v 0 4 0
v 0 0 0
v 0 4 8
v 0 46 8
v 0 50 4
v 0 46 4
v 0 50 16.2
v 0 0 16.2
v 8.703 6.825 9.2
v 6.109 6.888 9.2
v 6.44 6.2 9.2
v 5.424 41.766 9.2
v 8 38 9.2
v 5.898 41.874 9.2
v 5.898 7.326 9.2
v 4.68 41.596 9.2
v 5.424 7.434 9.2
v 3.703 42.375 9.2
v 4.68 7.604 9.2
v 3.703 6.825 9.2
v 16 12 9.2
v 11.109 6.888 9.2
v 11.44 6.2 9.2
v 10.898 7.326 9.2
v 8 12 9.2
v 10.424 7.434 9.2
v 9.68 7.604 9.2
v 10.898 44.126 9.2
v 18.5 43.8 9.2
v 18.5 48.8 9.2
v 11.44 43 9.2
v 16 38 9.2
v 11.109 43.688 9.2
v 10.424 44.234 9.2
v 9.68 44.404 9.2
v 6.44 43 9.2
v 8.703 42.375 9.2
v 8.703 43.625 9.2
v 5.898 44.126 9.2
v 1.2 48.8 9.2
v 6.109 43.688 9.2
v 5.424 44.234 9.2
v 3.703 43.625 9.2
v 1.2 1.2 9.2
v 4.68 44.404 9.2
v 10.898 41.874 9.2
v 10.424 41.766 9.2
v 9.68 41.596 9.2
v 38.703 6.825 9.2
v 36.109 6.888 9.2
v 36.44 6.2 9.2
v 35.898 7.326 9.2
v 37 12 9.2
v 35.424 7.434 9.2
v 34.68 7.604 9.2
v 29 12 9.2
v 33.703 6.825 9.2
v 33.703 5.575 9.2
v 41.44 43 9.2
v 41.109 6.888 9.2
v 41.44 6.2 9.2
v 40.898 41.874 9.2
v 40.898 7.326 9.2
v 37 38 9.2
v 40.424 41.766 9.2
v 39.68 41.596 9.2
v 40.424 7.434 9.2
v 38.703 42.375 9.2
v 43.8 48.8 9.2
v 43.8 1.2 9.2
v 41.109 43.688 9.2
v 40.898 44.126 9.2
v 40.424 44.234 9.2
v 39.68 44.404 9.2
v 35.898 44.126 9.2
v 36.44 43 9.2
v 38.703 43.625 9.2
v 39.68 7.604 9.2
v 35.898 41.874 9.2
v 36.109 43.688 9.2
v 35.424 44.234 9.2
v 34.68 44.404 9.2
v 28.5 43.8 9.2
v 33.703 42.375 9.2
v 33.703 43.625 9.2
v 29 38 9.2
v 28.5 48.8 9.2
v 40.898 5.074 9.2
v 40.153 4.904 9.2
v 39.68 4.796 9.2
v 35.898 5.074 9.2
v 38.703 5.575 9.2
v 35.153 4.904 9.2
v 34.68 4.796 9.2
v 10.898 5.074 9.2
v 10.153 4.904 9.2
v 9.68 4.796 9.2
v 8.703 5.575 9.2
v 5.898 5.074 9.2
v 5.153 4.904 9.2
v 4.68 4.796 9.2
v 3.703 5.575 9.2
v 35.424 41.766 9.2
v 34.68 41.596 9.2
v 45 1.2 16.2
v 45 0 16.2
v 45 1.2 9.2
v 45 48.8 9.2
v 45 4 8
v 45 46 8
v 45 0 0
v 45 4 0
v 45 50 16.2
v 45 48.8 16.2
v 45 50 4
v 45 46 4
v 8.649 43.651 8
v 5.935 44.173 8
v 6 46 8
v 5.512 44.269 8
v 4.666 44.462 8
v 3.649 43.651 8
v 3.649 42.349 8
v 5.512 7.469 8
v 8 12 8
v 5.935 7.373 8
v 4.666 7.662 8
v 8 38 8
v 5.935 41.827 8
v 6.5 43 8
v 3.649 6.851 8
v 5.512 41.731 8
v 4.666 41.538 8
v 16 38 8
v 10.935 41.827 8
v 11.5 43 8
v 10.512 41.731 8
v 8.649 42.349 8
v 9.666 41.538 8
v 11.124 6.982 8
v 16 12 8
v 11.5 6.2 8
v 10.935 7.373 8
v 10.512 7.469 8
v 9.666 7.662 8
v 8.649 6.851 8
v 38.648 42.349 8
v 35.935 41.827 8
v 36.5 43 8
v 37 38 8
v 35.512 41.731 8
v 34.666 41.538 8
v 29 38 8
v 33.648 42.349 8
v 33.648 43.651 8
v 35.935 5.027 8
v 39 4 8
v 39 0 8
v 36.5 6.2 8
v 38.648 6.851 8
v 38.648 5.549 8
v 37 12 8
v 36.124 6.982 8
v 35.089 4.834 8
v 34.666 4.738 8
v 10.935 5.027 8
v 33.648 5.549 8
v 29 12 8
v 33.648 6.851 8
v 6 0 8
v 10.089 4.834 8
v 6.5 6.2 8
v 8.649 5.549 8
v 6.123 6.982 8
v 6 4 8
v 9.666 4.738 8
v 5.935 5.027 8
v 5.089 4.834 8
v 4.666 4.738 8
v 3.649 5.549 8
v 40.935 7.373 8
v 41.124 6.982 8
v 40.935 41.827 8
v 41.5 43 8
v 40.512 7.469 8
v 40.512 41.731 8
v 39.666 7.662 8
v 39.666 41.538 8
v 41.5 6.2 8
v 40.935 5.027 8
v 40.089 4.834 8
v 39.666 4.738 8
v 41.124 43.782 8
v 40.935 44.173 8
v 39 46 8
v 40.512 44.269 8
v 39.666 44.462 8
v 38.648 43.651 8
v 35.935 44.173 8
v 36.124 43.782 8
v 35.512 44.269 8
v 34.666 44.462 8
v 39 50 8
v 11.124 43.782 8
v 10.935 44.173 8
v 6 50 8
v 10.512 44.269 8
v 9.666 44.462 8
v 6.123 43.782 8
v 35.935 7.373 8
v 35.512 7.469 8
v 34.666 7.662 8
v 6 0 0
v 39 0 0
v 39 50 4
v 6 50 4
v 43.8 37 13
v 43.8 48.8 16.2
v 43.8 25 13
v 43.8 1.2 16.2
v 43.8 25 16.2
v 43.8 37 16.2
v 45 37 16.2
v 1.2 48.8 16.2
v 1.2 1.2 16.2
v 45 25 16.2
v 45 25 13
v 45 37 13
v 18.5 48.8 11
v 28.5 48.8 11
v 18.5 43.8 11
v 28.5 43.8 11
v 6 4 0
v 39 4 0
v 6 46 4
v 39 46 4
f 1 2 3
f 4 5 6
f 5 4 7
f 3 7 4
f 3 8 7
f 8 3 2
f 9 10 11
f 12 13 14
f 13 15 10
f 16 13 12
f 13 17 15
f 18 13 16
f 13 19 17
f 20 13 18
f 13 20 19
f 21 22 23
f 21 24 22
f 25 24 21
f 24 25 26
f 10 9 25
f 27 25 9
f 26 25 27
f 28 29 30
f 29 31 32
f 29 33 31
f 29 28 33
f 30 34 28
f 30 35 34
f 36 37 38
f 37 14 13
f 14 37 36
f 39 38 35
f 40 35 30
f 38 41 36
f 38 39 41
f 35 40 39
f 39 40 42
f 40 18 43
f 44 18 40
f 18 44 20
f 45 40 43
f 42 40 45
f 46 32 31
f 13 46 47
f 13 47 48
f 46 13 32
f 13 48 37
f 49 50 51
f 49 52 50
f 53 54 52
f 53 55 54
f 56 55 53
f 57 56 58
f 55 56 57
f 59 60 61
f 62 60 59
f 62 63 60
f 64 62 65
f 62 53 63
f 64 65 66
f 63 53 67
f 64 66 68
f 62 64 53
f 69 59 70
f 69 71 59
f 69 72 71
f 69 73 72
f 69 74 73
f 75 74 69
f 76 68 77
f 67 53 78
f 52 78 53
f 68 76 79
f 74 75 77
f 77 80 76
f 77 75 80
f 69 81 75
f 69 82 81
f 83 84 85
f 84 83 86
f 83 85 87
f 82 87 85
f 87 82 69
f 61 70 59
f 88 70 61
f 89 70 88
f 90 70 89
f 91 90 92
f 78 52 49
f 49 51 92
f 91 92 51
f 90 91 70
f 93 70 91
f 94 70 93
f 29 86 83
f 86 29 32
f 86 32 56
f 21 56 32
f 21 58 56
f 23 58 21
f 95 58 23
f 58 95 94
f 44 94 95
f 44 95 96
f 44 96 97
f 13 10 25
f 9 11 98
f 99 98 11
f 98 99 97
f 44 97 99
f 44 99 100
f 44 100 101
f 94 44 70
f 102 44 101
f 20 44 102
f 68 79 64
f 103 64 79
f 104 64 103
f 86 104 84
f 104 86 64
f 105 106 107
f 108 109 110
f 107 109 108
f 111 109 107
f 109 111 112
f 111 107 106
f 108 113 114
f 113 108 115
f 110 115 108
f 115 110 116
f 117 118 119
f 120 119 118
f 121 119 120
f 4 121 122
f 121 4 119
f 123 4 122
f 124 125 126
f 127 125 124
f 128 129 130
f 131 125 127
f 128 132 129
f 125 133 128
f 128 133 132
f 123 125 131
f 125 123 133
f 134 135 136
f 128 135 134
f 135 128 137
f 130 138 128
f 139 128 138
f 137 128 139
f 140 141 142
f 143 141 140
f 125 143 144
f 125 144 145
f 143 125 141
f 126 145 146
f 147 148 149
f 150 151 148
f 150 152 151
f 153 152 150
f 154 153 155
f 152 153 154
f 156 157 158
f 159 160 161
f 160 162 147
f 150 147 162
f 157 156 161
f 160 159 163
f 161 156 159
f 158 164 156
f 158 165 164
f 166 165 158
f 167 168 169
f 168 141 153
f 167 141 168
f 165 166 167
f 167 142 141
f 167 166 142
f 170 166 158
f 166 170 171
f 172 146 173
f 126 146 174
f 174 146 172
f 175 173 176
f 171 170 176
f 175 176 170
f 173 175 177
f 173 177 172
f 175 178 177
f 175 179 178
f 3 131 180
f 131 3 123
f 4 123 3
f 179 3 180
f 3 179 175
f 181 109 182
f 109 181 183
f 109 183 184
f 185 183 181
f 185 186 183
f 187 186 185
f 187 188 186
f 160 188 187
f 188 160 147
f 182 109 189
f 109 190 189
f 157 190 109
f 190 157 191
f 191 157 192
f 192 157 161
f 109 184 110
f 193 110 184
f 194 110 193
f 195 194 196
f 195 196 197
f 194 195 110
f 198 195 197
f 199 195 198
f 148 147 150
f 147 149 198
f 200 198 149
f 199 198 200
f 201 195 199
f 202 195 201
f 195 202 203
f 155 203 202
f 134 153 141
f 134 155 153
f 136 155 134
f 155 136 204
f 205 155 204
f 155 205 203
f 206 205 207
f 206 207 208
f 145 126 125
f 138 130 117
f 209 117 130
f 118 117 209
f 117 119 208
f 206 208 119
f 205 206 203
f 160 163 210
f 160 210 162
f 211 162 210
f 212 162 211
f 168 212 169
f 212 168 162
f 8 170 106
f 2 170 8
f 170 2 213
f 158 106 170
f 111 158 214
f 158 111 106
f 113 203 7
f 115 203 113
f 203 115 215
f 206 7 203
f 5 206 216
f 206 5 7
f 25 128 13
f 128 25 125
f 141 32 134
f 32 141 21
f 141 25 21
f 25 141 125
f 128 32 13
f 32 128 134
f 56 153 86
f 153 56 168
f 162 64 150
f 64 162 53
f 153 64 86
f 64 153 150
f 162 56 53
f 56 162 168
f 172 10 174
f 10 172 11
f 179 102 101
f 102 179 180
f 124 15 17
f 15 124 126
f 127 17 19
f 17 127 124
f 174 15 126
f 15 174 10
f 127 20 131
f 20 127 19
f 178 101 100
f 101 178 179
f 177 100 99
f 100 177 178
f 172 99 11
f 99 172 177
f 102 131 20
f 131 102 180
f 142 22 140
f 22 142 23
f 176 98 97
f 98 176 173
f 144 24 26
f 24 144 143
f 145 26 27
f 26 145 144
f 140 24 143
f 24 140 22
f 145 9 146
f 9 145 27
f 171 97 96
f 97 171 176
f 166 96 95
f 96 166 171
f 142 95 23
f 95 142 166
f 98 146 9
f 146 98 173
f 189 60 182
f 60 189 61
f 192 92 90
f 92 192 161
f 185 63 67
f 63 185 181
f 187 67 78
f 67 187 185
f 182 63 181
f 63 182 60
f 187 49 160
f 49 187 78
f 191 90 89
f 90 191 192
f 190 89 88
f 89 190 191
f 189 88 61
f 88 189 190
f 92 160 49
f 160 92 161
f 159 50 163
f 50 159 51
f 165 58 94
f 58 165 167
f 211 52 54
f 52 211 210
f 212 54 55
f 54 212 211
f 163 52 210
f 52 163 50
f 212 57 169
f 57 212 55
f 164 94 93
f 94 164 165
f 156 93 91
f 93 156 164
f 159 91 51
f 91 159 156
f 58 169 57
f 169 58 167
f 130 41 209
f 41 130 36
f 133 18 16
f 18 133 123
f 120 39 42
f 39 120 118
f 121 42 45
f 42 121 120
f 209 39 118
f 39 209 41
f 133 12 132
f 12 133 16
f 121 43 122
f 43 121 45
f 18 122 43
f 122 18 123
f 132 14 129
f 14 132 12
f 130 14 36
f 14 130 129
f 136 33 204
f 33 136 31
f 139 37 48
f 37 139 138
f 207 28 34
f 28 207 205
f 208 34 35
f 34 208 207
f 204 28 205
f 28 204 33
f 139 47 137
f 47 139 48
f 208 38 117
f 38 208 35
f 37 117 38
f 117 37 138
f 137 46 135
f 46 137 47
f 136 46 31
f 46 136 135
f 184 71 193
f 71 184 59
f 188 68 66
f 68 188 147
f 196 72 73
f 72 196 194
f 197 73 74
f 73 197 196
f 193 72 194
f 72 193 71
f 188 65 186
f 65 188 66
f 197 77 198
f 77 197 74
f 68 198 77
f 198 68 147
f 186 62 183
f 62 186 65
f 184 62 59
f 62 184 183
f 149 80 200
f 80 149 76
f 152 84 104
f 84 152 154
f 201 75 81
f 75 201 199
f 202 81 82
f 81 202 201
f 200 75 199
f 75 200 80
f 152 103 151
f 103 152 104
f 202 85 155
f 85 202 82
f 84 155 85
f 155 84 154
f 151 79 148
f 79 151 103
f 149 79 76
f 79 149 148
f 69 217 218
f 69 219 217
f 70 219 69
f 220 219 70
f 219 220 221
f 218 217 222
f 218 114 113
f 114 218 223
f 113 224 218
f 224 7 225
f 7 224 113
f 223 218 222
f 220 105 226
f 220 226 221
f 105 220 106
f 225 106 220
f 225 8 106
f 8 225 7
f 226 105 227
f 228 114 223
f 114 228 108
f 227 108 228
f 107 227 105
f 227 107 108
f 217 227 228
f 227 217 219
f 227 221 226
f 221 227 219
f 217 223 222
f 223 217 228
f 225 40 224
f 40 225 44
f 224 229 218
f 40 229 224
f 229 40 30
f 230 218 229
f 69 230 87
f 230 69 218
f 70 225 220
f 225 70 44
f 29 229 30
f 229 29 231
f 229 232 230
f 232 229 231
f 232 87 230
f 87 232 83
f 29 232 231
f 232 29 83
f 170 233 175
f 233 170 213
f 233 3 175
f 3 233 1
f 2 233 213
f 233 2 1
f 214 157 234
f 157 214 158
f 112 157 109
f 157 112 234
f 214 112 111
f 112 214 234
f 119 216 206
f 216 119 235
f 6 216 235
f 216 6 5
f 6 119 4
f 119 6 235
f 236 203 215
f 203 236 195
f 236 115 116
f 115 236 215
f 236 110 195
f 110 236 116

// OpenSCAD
/* cap_cpuplate */

// 2018/6/5  15:35   usui
t=1.2;
h=45;
w=50;

//base-plate
module baseplate(h,w,t) {
    difference() {
        cube([h,w,t]);
    
        // plate large-hole *2
        translate([8,12,0])      cube([8,26,20]);
        translate([h-10-6,12,0])  cube([8,26,20]);    
        
        // plate circle
        translate([5,5+t,0])   cylinder(20,2,center=true);
        translate([10,5+t,0])   cylinder(20,2,center=true);
        
        translate([h-5,5+t,0])   cylinder(20,2,center=true);
        translate([h-10,5+t,0])   cylinder(20,2,center=true);

        translate([5,w-7,0])   cylinder(20,2,center=true);
        translate([10,w-7,0])   cylinder(20,2,center=true);
        
        translate([h-5,w-7,0])   cylinder(20,2,center=true);
        translate([h-10,w-7,0])   cylinder(20,2,center=true);

    }
    

    //wall
    //wt=t+6;
    wt=t+7;
    translate([0,0,0])  cube([t,w,wt]);
    translate([h-t,0,0])
        difference() {
            cube([t,w,wt]);
            translate([0,25,5]) cube([10,12,10]); //USB
        }
    translate([0,w-t,0])  cube([h,t,wt]);
    translate([0,0,0])  cube([h,t,wt]);


    //table
    translate([h/2-4,w-t-5,0]) cube([10,5,3]);
};



//post
translate([0,0,8])  baseplate(h,w,t);

translate([0,0,0])  cube([6,4,8]);
translate([h-6,0,0])  cube([6,4,8]);

translate([0  ,w-4,8-4])  cube([6,4,4]);
translate([h-6,w-4,8-4])  cube([6,4,4]);
